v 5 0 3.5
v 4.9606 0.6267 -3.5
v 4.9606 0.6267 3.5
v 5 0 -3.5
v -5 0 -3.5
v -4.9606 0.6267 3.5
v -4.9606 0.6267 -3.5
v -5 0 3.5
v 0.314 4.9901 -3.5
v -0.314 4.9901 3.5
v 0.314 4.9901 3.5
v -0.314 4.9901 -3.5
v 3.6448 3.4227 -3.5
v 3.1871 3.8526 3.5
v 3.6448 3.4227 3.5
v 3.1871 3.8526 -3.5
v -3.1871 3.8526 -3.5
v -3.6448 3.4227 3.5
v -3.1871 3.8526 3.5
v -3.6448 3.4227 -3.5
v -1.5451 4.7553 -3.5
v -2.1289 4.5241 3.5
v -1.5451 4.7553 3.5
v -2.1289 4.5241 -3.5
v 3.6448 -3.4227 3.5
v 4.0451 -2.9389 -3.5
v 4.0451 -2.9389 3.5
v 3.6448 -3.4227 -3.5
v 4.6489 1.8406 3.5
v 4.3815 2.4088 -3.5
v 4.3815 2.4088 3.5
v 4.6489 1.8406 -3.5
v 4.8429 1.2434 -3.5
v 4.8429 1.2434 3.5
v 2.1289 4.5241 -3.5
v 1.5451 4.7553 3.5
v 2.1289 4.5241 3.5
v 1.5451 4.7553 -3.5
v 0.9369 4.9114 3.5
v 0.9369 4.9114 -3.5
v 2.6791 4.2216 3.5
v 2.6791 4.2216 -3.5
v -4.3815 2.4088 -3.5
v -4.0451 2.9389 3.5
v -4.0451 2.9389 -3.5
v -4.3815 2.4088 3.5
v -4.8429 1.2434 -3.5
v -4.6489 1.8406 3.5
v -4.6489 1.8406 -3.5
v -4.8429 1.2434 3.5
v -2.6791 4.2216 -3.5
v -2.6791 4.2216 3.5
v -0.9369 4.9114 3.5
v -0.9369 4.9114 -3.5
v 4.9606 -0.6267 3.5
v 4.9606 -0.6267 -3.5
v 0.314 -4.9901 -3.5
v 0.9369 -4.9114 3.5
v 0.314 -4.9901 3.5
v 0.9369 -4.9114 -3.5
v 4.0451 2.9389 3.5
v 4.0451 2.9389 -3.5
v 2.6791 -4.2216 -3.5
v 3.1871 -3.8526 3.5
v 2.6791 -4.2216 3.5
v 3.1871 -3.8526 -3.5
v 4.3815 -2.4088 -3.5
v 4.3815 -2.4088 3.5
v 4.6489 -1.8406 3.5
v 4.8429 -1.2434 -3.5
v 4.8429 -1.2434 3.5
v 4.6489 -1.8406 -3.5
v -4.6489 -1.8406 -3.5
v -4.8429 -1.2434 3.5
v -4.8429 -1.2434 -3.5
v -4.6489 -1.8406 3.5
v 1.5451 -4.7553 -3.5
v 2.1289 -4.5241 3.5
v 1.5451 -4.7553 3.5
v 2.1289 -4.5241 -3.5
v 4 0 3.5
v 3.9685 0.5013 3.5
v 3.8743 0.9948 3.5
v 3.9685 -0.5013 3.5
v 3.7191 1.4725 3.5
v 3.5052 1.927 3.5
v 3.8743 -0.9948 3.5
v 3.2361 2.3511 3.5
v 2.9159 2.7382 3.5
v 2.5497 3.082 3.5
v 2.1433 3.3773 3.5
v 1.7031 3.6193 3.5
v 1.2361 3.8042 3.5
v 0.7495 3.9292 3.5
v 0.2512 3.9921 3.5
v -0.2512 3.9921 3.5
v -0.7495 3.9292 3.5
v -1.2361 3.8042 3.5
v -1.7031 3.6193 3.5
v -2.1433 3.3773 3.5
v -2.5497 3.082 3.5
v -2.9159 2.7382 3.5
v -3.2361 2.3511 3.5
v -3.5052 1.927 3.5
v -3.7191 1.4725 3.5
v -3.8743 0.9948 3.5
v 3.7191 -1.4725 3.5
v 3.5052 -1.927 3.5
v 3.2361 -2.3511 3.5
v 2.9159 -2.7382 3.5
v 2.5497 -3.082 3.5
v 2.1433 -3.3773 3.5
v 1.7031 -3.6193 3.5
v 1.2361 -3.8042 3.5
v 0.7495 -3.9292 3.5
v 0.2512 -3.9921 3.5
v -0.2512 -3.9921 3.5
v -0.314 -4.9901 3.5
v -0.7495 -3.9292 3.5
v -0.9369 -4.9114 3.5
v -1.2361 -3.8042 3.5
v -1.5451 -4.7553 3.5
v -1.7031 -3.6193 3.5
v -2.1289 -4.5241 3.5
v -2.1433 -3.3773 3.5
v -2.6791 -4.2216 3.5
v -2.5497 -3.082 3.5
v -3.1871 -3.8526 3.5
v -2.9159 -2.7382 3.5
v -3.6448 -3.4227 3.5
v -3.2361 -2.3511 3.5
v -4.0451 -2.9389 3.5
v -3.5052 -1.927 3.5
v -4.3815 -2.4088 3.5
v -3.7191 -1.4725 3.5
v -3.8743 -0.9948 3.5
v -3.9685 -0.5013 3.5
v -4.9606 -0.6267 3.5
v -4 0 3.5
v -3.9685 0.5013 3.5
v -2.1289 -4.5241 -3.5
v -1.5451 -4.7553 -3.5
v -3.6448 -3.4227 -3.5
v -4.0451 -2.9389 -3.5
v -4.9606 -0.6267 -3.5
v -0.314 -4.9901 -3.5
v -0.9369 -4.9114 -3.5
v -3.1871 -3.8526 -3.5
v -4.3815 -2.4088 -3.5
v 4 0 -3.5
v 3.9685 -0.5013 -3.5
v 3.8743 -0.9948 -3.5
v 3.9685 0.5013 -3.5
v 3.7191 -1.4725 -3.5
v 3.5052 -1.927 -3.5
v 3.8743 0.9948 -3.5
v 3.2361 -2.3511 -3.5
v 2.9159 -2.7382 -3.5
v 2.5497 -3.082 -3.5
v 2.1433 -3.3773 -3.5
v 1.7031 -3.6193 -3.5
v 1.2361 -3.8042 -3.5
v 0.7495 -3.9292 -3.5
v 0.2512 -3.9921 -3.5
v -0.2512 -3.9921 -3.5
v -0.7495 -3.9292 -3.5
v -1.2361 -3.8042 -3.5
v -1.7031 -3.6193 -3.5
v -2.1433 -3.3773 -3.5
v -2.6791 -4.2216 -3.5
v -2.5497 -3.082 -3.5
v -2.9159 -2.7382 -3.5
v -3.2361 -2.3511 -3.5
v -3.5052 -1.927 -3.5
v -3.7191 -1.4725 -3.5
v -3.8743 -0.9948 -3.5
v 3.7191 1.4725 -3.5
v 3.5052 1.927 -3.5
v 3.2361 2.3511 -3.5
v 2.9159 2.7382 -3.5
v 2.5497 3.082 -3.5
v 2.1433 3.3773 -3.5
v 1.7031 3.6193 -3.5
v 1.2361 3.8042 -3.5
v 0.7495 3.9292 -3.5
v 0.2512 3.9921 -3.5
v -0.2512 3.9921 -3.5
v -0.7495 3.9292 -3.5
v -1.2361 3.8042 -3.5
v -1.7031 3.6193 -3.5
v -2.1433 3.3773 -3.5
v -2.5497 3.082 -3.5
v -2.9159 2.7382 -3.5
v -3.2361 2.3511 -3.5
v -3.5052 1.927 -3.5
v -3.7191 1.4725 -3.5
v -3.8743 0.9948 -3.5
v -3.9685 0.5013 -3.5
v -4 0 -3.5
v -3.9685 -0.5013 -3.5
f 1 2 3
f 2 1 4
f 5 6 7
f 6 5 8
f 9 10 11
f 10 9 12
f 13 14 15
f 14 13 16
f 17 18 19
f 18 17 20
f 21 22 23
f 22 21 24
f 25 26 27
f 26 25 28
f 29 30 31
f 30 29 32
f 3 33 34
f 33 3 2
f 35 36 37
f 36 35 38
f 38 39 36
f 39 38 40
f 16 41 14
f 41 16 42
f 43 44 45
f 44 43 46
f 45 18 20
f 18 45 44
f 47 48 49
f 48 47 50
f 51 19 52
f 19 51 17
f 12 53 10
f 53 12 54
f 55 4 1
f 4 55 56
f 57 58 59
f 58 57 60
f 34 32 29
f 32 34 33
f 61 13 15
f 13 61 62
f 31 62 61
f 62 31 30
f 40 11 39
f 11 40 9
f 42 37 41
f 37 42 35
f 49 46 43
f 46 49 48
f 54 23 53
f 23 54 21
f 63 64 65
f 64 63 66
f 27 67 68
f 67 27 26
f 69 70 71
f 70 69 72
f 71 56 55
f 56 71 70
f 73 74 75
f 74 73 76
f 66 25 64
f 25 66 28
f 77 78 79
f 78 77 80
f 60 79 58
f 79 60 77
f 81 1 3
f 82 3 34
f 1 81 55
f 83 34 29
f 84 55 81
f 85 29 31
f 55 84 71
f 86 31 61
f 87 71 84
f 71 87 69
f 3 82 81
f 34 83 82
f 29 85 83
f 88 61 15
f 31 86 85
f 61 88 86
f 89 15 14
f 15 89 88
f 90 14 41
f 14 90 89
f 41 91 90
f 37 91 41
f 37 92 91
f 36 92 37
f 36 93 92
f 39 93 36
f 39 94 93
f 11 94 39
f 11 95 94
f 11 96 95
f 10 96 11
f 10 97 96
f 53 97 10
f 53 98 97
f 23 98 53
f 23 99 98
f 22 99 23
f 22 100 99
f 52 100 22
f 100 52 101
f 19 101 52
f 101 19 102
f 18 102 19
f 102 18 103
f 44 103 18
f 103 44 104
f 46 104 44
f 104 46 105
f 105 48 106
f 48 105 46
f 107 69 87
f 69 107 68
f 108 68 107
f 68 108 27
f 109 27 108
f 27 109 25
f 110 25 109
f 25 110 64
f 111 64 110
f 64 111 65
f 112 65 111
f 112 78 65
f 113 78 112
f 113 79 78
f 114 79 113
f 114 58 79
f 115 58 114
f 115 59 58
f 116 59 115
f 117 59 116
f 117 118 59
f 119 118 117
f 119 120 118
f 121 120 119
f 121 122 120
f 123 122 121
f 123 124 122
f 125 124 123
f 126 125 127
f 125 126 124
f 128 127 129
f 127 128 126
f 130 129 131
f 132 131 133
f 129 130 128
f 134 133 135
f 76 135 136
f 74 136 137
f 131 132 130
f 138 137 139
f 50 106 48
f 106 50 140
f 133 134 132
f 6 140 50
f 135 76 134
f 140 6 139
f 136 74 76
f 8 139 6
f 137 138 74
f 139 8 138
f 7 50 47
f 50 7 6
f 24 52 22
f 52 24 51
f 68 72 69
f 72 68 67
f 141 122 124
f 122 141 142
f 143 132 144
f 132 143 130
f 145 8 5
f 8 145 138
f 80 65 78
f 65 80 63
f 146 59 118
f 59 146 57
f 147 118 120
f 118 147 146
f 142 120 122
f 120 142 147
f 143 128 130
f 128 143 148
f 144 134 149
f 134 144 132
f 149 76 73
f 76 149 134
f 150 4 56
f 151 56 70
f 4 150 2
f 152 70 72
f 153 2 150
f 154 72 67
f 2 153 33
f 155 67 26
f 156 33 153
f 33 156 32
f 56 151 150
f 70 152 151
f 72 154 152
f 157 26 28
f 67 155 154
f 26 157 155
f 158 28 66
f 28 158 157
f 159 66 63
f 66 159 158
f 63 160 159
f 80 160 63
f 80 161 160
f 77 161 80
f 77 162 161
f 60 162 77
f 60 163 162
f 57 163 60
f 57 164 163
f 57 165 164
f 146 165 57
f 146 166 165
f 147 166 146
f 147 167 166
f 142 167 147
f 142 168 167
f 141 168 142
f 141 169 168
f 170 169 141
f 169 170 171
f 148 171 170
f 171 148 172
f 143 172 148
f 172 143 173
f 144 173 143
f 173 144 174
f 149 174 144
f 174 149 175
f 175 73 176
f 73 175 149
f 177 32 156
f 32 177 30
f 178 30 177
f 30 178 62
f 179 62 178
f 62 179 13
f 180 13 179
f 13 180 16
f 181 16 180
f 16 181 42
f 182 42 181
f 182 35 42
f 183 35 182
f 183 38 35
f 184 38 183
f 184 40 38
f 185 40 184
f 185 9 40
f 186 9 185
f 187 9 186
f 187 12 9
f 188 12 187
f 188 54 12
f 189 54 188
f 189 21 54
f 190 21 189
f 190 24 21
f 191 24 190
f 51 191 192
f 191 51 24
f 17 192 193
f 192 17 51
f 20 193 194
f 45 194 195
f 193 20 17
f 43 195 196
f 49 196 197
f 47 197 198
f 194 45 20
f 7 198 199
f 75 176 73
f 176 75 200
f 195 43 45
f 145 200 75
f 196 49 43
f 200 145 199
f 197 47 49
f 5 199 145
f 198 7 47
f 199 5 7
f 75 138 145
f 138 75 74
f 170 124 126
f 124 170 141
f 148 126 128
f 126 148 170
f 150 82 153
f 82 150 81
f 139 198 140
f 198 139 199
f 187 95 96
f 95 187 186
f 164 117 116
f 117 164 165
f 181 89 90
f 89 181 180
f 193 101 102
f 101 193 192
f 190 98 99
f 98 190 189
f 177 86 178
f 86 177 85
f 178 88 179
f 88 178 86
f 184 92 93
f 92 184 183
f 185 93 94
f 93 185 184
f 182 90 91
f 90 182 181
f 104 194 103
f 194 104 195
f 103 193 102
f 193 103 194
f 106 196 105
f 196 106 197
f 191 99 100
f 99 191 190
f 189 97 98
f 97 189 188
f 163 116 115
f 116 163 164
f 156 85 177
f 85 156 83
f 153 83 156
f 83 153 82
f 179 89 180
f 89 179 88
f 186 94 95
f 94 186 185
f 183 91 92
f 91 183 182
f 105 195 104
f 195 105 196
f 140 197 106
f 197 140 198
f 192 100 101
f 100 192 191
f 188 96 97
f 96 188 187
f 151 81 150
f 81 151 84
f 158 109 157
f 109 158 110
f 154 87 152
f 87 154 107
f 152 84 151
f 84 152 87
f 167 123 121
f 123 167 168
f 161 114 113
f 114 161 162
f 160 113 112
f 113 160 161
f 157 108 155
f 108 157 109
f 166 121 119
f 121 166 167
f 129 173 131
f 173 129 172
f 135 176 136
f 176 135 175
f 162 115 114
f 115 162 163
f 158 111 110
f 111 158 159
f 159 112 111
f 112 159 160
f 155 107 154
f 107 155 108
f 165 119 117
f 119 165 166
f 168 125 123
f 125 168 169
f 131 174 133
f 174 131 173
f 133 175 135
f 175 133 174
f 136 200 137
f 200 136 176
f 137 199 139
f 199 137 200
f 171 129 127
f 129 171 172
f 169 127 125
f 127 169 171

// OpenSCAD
$fn = 50;


difference() {
	union() {
		translate(v = [0, 0, -3.5000000000]) {
			cylinder(h = 7, r = 5.0000000000);
		}
	}
	union() {
		translate(v = [0, 0, -100.0000000000]) {
			cylinder(h = 200, r = 4.0000000000);
		}
	}
}
